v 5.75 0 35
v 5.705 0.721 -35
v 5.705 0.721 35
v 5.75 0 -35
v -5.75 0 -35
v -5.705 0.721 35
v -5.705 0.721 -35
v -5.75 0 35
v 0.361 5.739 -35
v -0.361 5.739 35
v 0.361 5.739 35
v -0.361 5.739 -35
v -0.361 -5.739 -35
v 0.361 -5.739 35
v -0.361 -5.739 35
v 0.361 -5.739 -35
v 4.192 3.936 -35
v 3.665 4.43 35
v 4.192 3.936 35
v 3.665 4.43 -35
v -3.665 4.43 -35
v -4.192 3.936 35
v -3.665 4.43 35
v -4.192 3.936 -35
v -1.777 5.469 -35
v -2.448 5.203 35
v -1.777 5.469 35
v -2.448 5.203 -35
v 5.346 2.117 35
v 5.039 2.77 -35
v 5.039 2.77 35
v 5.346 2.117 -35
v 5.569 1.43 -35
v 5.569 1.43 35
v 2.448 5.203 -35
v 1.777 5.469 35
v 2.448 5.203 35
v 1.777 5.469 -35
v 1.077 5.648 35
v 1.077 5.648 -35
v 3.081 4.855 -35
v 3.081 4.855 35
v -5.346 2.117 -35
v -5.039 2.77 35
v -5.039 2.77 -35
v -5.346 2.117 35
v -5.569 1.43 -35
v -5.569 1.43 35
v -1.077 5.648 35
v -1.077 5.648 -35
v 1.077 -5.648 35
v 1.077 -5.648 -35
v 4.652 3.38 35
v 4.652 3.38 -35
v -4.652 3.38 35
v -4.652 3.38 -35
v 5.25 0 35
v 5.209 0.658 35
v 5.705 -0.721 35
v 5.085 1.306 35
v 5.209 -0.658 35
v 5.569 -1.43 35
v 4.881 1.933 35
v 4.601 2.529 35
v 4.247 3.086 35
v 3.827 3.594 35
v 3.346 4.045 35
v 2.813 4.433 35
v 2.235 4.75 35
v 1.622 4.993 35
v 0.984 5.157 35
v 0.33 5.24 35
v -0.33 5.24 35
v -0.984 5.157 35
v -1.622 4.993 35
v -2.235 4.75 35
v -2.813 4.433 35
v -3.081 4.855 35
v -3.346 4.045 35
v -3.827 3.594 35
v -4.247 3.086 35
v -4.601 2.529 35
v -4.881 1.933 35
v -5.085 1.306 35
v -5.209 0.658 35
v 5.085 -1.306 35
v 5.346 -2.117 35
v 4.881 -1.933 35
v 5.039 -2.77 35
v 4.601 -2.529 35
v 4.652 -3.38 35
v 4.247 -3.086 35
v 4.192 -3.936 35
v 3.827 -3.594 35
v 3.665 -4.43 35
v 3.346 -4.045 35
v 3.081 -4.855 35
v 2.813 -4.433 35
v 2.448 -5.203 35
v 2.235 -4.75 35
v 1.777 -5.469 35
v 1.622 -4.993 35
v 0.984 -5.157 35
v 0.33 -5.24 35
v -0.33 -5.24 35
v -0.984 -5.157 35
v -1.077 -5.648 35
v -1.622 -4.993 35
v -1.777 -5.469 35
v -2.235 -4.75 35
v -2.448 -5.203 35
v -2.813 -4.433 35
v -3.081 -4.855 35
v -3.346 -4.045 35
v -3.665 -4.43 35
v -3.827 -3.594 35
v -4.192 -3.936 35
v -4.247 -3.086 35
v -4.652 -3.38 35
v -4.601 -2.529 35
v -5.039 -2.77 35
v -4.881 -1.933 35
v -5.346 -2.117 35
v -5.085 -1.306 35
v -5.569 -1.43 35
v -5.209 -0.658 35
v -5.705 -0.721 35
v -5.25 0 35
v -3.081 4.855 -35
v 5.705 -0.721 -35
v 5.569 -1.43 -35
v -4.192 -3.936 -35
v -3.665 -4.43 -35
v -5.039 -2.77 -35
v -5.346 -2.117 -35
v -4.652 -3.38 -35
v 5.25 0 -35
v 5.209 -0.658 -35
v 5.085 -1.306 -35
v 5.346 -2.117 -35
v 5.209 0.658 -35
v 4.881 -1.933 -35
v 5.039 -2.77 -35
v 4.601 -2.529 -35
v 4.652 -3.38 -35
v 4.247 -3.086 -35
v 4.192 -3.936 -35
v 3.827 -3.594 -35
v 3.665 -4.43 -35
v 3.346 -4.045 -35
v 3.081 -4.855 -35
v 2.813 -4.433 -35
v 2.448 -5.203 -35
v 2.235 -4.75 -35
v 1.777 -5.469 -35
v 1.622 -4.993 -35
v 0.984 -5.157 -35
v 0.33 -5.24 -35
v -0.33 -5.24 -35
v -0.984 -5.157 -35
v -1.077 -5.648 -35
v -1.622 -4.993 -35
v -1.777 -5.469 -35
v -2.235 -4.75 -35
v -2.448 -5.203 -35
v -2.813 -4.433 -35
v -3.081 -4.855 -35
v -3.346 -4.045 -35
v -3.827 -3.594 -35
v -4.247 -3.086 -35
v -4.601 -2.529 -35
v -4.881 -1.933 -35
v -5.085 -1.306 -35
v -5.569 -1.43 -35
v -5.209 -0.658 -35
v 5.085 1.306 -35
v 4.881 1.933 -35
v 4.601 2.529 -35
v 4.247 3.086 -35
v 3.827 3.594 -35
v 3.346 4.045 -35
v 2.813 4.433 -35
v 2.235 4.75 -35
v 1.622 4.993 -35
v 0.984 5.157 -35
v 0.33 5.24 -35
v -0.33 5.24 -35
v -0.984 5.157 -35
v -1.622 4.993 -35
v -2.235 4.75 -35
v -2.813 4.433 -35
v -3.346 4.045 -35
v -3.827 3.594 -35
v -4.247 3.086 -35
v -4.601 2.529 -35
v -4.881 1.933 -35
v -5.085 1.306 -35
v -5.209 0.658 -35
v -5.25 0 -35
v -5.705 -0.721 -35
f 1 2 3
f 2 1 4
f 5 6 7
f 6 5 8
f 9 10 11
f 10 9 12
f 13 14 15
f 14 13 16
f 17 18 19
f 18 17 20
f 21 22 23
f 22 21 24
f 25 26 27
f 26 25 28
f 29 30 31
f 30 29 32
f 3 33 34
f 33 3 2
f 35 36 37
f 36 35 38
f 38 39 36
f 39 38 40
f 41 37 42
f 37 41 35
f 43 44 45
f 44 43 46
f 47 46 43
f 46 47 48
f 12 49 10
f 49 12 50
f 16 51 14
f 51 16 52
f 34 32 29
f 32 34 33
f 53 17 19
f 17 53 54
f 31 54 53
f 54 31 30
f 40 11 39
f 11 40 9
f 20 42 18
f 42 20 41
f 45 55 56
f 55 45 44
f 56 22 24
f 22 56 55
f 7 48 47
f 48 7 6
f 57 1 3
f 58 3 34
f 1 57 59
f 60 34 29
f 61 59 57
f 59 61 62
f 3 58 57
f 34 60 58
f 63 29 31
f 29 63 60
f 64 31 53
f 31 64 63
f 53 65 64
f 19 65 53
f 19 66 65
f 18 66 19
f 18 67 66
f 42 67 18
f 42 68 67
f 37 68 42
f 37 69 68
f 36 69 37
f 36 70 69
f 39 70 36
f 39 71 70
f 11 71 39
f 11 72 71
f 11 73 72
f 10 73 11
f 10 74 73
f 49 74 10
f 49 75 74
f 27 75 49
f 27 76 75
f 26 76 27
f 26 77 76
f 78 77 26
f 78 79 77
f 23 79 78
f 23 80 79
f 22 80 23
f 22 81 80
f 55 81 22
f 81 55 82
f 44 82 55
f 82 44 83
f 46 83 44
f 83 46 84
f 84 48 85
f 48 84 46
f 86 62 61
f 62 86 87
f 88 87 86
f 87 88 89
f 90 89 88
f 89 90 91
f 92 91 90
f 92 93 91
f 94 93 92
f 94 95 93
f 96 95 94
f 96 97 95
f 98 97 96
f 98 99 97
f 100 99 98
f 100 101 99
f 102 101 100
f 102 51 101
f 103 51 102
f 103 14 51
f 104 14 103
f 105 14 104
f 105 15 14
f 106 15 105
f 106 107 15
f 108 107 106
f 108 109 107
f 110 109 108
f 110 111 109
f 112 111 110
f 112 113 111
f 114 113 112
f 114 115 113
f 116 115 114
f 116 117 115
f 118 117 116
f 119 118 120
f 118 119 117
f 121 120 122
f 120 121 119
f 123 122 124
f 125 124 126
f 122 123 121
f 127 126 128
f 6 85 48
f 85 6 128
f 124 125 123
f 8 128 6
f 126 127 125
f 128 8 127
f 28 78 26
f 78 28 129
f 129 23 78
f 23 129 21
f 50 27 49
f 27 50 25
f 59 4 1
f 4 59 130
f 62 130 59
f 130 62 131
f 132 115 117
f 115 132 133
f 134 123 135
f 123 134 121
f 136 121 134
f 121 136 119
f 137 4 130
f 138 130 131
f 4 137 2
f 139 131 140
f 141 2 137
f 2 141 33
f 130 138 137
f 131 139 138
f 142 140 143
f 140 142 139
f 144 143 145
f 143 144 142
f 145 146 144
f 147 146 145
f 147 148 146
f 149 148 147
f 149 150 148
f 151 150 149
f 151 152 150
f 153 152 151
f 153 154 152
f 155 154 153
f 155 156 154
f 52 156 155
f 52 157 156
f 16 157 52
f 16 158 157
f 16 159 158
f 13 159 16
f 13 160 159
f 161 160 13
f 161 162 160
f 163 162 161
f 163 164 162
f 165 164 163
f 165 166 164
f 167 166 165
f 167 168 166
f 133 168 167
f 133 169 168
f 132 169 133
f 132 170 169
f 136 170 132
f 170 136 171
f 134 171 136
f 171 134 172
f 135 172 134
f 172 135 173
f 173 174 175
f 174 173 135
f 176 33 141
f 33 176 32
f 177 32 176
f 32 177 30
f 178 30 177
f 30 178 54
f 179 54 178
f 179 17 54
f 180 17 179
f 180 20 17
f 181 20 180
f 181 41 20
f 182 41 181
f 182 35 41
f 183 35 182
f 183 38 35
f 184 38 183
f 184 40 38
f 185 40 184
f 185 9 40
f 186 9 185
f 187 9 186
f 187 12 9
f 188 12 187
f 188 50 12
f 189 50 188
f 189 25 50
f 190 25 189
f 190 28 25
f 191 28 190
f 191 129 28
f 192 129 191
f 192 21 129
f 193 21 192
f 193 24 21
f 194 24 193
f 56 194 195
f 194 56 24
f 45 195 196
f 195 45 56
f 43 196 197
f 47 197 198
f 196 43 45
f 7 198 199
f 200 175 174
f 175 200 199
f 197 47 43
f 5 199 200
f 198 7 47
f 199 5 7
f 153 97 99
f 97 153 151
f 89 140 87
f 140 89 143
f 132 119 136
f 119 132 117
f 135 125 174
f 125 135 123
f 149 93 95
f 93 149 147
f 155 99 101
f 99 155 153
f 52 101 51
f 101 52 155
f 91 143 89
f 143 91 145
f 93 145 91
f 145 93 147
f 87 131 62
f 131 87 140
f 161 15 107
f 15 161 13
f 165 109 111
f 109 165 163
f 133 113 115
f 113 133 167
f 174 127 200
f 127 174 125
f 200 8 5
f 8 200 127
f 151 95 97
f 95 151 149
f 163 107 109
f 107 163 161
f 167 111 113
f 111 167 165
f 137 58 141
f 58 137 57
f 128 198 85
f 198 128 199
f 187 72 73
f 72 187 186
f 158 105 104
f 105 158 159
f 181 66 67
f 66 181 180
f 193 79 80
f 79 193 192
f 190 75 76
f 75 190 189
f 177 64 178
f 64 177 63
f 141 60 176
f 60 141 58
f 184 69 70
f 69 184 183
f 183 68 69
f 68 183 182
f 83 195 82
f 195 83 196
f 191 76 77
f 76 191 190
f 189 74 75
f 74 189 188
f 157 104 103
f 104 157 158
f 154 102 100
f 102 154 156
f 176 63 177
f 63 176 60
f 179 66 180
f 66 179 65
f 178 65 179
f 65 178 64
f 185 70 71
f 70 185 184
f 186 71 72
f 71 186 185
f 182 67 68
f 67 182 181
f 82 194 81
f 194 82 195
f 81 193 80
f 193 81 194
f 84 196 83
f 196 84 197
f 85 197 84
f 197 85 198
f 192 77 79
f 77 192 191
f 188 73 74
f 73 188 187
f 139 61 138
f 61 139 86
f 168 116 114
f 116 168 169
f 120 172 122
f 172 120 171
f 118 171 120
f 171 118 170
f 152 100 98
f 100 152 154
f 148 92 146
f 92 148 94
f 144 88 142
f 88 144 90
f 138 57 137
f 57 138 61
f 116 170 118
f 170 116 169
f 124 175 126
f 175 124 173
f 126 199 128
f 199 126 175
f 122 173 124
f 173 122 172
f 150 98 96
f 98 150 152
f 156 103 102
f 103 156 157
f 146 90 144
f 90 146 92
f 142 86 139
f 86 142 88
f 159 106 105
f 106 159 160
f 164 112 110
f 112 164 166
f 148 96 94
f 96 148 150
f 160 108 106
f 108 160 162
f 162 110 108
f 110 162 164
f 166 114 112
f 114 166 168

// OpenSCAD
$fn = 50;


difference() {
	union() {
		translate(v = [0, 0, -35.0000000000]) {
			cylinder(h = 70, r = 5.7500000000);
		}
	}
	union() {
		translate(v = [0, 0, -100.0000000000]) {
			cylinder(h = 200, r = 5.2500000000);
		}
	}
}
